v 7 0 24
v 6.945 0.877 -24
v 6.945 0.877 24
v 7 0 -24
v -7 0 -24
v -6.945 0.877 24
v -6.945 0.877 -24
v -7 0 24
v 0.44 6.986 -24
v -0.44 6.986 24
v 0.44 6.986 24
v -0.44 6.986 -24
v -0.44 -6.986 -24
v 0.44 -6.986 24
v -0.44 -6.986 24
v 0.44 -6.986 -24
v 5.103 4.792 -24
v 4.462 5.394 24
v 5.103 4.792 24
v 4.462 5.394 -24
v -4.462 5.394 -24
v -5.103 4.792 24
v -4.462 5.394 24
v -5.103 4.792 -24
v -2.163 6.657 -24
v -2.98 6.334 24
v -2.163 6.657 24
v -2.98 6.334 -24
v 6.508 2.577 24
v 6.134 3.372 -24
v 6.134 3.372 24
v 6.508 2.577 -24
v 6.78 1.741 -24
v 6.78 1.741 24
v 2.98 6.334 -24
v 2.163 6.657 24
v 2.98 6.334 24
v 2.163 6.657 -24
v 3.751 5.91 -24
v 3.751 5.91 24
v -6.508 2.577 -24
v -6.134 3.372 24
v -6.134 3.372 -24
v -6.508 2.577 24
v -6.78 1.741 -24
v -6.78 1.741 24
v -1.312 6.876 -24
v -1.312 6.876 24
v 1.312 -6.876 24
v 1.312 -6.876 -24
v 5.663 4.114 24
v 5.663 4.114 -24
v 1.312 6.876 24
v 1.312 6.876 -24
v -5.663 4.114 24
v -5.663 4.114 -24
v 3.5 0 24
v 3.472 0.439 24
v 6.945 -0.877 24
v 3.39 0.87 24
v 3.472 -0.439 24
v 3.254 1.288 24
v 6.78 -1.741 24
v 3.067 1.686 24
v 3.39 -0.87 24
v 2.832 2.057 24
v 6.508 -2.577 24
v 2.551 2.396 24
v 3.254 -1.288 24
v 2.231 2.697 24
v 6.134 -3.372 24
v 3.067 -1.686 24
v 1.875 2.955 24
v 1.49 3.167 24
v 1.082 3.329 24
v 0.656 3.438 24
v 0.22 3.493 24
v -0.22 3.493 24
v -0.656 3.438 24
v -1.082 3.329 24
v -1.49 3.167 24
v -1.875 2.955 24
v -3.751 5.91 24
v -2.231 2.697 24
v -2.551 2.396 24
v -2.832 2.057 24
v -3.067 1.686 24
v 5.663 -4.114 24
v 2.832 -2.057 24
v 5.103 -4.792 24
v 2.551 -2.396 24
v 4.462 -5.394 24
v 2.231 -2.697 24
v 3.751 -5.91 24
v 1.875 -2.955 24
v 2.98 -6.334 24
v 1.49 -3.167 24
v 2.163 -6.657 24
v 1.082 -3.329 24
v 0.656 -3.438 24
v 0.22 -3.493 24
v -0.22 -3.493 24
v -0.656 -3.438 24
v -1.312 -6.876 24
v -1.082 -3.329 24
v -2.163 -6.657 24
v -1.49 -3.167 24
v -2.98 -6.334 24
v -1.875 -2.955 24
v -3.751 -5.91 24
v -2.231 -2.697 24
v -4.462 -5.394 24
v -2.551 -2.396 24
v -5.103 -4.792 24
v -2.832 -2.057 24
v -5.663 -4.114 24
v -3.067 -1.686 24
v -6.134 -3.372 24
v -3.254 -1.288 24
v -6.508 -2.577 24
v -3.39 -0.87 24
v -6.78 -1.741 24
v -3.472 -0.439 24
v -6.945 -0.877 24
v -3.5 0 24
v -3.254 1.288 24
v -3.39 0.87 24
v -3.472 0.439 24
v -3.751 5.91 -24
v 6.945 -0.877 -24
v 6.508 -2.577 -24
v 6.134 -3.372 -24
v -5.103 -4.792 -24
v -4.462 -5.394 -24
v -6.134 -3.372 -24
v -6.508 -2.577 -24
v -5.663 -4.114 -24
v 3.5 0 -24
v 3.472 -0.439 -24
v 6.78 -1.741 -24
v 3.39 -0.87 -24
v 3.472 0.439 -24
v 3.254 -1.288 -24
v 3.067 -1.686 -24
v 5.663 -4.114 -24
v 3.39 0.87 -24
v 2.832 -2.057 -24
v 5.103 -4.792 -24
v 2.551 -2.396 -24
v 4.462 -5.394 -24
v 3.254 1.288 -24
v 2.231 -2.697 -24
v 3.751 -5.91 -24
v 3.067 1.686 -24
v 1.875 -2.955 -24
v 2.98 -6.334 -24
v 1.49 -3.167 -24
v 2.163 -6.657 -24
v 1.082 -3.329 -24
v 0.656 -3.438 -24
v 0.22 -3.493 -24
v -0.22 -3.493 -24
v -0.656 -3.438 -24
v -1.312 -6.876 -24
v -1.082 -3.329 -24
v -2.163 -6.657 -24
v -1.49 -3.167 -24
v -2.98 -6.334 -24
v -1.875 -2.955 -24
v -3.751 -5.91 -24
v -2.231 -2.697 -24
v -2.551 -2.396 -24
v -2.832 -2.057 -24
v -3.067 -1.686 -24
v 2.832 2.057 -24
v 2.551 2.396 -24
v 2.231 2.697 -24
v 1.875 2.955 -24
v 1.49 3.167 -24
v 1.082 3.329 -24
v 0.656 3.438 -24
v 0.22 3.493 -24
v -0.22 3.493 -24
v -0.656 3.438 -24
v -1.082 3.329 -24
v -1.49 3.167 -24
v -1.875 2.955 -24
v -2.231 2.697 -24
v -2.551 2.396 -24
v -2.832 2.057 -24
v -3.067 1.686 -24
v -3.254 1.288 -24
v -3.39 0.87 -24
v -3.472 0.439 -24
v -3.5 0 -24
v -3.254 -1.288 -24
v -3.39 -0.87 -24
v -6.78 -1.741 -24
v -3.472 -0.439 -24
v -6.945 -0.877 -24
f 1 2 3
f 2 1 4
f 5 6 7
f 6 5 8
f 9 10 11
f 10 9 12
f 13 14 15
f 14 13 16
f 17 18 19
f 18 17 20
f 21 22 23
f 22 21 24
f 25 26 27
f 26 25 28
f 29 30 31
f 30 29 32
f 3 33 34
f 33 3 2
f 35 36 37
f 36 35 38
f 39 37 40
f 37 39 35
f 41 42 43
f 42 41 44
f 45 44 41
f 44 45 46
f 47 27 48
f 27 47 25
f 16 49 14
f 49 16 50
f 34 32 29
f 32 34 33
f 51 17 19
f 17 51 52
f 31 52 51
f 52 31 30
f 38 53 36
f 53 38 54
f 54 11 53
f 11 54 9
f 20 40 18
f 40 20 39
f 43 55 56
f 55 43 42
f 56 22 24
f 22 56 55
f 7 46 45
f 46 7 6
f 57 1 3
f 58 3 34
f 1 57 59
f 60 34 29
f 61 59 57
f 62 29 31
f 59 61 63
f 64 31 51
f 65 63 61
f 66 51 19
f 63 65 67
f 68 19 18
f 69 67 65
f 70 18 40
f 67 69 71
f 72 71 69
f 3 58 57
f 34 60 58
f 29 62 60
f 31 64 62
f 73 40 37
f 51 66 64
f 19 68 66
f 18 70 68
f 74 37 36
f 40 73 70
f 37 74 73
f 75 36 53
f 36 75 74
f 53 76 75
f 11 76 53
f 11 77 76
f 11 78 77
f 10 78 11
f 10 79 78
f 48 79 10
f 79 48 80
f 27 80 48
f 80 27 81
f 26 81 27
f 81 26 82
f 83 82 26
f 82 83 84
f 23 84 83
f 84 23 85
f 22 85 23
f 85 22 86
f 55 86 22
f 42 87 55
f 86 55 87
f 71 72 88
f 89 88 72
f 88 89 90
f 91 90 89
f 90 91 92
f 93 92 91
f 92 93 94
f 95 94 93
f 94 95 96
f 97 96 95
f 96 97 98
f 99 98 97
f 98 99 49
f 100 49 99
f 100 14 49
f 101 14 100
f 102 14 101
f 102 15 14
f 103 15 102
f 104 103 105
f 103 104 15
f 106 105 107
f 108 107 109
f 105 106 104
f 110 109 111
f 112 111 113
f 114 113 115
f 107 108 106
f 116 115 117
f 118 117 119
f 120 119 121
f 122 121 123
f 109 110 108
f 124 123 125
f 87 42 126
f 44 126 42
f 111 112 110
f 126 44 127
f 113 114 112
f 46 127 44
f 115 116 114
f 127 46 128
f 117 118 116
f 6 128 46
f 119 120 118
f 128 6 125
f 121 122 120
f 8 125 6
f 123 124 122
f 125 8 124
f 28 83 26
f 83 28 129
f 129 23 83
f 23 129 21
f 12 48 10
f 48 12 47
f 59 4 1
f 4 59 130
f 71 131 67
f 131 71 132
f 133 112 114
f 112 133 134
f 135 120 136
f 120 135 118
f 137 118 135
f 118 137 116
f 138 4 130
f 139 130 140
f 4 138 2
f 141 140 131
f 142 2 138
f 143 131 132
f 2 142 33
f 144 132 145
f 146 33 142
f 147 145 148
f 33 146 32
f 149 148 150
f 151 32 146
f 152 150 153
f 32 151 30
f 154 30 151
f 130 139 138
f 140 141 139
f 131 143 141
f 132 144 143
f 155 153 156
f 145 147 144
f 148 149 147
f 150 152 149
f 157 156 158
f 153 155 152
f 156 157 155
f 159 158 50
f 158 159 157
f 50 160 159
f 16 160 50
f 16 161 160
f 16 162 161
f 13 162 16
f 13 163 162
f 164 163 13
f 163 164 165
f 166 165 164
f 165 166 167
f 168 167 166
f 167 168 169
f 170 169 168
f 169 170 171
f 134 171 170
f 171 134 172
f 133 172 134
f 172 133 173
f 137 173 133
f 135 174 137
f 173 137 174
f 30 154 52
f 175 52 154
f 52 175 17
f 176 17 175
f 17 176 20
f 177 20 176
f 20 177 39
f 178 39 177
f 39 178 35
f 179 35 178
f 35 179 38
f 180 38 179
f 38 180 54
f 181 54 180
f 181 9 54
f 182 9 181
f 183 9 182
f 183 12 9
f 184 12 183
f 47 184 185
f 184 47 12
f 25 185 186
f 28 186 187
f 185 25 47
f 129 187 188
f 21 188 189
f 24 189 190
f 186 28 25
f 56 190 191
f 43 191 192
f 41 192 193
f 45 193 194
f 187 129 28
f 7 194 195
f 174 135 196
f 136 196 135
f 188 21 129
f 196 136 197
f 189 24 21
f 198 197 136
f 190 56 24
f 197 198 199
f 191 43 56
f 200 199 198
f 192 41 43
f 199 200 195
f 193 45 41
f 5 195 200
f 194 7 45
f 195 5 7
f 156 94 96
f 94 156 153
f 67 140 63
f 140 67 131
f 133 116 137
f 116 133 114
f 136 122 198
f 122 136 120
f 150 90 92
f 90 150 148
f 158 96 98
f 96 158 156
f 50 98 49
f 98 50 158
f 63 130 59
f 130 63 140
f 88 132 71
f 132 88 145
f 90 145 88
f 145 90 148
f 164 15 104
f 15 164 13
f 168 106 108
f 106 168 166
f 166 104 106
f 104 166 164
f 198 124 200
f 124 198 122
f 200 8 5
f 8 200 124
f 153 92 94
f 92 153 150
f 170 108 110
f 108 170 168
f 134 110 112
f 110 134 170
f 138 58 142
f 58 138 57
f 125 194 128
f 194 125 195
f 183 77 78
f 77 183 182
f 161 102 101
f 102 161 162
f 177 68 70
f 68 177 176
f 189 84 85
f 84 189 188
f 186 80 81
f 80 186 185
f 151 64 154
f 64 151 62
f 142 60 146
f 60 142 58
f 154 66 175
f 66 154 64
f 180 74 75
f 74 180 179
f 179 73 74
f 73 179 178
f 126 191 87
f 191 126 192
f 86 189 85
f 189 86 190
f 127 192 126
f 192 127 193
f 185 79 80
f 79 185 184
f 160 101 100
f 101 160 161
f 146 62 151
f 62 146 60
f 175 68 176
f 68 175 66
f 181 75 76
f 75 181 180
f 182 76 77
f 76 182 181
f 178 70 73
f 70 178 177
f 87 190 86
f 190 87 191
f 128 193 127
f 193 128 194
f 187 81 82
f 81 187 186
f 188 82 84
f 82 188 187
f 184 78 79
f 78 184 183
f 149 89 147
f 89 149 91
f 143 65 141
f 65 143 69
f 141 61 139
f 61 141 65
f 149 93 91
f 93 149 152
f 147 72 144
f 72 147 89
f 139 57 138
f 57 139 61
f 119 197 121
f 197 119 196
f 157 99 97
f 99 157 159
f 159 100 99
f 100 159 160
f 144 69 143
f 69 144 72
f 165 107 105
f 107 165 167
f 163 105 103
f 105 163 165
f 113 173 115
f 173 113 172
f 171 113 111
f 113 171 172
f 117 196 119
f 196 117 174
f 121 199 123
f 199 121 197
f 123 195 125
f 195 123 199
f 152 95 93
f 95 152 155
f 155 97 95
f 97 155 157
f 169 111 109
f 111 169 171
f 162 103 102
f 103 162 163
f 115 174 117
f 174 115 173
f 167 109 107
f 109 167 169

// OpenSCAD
$fn = 50;


difference() {
	union() {
		translate(v = [0, 0, -24.0000000000]) {
			cylinder(h = 48, r = 7.0000000000);
		}
	}
	union() {
		translate(v = [0, 0, -100.0000000000]) {
			cylinder(h = 200, r = 3.5000000000);
		}
	}
}
